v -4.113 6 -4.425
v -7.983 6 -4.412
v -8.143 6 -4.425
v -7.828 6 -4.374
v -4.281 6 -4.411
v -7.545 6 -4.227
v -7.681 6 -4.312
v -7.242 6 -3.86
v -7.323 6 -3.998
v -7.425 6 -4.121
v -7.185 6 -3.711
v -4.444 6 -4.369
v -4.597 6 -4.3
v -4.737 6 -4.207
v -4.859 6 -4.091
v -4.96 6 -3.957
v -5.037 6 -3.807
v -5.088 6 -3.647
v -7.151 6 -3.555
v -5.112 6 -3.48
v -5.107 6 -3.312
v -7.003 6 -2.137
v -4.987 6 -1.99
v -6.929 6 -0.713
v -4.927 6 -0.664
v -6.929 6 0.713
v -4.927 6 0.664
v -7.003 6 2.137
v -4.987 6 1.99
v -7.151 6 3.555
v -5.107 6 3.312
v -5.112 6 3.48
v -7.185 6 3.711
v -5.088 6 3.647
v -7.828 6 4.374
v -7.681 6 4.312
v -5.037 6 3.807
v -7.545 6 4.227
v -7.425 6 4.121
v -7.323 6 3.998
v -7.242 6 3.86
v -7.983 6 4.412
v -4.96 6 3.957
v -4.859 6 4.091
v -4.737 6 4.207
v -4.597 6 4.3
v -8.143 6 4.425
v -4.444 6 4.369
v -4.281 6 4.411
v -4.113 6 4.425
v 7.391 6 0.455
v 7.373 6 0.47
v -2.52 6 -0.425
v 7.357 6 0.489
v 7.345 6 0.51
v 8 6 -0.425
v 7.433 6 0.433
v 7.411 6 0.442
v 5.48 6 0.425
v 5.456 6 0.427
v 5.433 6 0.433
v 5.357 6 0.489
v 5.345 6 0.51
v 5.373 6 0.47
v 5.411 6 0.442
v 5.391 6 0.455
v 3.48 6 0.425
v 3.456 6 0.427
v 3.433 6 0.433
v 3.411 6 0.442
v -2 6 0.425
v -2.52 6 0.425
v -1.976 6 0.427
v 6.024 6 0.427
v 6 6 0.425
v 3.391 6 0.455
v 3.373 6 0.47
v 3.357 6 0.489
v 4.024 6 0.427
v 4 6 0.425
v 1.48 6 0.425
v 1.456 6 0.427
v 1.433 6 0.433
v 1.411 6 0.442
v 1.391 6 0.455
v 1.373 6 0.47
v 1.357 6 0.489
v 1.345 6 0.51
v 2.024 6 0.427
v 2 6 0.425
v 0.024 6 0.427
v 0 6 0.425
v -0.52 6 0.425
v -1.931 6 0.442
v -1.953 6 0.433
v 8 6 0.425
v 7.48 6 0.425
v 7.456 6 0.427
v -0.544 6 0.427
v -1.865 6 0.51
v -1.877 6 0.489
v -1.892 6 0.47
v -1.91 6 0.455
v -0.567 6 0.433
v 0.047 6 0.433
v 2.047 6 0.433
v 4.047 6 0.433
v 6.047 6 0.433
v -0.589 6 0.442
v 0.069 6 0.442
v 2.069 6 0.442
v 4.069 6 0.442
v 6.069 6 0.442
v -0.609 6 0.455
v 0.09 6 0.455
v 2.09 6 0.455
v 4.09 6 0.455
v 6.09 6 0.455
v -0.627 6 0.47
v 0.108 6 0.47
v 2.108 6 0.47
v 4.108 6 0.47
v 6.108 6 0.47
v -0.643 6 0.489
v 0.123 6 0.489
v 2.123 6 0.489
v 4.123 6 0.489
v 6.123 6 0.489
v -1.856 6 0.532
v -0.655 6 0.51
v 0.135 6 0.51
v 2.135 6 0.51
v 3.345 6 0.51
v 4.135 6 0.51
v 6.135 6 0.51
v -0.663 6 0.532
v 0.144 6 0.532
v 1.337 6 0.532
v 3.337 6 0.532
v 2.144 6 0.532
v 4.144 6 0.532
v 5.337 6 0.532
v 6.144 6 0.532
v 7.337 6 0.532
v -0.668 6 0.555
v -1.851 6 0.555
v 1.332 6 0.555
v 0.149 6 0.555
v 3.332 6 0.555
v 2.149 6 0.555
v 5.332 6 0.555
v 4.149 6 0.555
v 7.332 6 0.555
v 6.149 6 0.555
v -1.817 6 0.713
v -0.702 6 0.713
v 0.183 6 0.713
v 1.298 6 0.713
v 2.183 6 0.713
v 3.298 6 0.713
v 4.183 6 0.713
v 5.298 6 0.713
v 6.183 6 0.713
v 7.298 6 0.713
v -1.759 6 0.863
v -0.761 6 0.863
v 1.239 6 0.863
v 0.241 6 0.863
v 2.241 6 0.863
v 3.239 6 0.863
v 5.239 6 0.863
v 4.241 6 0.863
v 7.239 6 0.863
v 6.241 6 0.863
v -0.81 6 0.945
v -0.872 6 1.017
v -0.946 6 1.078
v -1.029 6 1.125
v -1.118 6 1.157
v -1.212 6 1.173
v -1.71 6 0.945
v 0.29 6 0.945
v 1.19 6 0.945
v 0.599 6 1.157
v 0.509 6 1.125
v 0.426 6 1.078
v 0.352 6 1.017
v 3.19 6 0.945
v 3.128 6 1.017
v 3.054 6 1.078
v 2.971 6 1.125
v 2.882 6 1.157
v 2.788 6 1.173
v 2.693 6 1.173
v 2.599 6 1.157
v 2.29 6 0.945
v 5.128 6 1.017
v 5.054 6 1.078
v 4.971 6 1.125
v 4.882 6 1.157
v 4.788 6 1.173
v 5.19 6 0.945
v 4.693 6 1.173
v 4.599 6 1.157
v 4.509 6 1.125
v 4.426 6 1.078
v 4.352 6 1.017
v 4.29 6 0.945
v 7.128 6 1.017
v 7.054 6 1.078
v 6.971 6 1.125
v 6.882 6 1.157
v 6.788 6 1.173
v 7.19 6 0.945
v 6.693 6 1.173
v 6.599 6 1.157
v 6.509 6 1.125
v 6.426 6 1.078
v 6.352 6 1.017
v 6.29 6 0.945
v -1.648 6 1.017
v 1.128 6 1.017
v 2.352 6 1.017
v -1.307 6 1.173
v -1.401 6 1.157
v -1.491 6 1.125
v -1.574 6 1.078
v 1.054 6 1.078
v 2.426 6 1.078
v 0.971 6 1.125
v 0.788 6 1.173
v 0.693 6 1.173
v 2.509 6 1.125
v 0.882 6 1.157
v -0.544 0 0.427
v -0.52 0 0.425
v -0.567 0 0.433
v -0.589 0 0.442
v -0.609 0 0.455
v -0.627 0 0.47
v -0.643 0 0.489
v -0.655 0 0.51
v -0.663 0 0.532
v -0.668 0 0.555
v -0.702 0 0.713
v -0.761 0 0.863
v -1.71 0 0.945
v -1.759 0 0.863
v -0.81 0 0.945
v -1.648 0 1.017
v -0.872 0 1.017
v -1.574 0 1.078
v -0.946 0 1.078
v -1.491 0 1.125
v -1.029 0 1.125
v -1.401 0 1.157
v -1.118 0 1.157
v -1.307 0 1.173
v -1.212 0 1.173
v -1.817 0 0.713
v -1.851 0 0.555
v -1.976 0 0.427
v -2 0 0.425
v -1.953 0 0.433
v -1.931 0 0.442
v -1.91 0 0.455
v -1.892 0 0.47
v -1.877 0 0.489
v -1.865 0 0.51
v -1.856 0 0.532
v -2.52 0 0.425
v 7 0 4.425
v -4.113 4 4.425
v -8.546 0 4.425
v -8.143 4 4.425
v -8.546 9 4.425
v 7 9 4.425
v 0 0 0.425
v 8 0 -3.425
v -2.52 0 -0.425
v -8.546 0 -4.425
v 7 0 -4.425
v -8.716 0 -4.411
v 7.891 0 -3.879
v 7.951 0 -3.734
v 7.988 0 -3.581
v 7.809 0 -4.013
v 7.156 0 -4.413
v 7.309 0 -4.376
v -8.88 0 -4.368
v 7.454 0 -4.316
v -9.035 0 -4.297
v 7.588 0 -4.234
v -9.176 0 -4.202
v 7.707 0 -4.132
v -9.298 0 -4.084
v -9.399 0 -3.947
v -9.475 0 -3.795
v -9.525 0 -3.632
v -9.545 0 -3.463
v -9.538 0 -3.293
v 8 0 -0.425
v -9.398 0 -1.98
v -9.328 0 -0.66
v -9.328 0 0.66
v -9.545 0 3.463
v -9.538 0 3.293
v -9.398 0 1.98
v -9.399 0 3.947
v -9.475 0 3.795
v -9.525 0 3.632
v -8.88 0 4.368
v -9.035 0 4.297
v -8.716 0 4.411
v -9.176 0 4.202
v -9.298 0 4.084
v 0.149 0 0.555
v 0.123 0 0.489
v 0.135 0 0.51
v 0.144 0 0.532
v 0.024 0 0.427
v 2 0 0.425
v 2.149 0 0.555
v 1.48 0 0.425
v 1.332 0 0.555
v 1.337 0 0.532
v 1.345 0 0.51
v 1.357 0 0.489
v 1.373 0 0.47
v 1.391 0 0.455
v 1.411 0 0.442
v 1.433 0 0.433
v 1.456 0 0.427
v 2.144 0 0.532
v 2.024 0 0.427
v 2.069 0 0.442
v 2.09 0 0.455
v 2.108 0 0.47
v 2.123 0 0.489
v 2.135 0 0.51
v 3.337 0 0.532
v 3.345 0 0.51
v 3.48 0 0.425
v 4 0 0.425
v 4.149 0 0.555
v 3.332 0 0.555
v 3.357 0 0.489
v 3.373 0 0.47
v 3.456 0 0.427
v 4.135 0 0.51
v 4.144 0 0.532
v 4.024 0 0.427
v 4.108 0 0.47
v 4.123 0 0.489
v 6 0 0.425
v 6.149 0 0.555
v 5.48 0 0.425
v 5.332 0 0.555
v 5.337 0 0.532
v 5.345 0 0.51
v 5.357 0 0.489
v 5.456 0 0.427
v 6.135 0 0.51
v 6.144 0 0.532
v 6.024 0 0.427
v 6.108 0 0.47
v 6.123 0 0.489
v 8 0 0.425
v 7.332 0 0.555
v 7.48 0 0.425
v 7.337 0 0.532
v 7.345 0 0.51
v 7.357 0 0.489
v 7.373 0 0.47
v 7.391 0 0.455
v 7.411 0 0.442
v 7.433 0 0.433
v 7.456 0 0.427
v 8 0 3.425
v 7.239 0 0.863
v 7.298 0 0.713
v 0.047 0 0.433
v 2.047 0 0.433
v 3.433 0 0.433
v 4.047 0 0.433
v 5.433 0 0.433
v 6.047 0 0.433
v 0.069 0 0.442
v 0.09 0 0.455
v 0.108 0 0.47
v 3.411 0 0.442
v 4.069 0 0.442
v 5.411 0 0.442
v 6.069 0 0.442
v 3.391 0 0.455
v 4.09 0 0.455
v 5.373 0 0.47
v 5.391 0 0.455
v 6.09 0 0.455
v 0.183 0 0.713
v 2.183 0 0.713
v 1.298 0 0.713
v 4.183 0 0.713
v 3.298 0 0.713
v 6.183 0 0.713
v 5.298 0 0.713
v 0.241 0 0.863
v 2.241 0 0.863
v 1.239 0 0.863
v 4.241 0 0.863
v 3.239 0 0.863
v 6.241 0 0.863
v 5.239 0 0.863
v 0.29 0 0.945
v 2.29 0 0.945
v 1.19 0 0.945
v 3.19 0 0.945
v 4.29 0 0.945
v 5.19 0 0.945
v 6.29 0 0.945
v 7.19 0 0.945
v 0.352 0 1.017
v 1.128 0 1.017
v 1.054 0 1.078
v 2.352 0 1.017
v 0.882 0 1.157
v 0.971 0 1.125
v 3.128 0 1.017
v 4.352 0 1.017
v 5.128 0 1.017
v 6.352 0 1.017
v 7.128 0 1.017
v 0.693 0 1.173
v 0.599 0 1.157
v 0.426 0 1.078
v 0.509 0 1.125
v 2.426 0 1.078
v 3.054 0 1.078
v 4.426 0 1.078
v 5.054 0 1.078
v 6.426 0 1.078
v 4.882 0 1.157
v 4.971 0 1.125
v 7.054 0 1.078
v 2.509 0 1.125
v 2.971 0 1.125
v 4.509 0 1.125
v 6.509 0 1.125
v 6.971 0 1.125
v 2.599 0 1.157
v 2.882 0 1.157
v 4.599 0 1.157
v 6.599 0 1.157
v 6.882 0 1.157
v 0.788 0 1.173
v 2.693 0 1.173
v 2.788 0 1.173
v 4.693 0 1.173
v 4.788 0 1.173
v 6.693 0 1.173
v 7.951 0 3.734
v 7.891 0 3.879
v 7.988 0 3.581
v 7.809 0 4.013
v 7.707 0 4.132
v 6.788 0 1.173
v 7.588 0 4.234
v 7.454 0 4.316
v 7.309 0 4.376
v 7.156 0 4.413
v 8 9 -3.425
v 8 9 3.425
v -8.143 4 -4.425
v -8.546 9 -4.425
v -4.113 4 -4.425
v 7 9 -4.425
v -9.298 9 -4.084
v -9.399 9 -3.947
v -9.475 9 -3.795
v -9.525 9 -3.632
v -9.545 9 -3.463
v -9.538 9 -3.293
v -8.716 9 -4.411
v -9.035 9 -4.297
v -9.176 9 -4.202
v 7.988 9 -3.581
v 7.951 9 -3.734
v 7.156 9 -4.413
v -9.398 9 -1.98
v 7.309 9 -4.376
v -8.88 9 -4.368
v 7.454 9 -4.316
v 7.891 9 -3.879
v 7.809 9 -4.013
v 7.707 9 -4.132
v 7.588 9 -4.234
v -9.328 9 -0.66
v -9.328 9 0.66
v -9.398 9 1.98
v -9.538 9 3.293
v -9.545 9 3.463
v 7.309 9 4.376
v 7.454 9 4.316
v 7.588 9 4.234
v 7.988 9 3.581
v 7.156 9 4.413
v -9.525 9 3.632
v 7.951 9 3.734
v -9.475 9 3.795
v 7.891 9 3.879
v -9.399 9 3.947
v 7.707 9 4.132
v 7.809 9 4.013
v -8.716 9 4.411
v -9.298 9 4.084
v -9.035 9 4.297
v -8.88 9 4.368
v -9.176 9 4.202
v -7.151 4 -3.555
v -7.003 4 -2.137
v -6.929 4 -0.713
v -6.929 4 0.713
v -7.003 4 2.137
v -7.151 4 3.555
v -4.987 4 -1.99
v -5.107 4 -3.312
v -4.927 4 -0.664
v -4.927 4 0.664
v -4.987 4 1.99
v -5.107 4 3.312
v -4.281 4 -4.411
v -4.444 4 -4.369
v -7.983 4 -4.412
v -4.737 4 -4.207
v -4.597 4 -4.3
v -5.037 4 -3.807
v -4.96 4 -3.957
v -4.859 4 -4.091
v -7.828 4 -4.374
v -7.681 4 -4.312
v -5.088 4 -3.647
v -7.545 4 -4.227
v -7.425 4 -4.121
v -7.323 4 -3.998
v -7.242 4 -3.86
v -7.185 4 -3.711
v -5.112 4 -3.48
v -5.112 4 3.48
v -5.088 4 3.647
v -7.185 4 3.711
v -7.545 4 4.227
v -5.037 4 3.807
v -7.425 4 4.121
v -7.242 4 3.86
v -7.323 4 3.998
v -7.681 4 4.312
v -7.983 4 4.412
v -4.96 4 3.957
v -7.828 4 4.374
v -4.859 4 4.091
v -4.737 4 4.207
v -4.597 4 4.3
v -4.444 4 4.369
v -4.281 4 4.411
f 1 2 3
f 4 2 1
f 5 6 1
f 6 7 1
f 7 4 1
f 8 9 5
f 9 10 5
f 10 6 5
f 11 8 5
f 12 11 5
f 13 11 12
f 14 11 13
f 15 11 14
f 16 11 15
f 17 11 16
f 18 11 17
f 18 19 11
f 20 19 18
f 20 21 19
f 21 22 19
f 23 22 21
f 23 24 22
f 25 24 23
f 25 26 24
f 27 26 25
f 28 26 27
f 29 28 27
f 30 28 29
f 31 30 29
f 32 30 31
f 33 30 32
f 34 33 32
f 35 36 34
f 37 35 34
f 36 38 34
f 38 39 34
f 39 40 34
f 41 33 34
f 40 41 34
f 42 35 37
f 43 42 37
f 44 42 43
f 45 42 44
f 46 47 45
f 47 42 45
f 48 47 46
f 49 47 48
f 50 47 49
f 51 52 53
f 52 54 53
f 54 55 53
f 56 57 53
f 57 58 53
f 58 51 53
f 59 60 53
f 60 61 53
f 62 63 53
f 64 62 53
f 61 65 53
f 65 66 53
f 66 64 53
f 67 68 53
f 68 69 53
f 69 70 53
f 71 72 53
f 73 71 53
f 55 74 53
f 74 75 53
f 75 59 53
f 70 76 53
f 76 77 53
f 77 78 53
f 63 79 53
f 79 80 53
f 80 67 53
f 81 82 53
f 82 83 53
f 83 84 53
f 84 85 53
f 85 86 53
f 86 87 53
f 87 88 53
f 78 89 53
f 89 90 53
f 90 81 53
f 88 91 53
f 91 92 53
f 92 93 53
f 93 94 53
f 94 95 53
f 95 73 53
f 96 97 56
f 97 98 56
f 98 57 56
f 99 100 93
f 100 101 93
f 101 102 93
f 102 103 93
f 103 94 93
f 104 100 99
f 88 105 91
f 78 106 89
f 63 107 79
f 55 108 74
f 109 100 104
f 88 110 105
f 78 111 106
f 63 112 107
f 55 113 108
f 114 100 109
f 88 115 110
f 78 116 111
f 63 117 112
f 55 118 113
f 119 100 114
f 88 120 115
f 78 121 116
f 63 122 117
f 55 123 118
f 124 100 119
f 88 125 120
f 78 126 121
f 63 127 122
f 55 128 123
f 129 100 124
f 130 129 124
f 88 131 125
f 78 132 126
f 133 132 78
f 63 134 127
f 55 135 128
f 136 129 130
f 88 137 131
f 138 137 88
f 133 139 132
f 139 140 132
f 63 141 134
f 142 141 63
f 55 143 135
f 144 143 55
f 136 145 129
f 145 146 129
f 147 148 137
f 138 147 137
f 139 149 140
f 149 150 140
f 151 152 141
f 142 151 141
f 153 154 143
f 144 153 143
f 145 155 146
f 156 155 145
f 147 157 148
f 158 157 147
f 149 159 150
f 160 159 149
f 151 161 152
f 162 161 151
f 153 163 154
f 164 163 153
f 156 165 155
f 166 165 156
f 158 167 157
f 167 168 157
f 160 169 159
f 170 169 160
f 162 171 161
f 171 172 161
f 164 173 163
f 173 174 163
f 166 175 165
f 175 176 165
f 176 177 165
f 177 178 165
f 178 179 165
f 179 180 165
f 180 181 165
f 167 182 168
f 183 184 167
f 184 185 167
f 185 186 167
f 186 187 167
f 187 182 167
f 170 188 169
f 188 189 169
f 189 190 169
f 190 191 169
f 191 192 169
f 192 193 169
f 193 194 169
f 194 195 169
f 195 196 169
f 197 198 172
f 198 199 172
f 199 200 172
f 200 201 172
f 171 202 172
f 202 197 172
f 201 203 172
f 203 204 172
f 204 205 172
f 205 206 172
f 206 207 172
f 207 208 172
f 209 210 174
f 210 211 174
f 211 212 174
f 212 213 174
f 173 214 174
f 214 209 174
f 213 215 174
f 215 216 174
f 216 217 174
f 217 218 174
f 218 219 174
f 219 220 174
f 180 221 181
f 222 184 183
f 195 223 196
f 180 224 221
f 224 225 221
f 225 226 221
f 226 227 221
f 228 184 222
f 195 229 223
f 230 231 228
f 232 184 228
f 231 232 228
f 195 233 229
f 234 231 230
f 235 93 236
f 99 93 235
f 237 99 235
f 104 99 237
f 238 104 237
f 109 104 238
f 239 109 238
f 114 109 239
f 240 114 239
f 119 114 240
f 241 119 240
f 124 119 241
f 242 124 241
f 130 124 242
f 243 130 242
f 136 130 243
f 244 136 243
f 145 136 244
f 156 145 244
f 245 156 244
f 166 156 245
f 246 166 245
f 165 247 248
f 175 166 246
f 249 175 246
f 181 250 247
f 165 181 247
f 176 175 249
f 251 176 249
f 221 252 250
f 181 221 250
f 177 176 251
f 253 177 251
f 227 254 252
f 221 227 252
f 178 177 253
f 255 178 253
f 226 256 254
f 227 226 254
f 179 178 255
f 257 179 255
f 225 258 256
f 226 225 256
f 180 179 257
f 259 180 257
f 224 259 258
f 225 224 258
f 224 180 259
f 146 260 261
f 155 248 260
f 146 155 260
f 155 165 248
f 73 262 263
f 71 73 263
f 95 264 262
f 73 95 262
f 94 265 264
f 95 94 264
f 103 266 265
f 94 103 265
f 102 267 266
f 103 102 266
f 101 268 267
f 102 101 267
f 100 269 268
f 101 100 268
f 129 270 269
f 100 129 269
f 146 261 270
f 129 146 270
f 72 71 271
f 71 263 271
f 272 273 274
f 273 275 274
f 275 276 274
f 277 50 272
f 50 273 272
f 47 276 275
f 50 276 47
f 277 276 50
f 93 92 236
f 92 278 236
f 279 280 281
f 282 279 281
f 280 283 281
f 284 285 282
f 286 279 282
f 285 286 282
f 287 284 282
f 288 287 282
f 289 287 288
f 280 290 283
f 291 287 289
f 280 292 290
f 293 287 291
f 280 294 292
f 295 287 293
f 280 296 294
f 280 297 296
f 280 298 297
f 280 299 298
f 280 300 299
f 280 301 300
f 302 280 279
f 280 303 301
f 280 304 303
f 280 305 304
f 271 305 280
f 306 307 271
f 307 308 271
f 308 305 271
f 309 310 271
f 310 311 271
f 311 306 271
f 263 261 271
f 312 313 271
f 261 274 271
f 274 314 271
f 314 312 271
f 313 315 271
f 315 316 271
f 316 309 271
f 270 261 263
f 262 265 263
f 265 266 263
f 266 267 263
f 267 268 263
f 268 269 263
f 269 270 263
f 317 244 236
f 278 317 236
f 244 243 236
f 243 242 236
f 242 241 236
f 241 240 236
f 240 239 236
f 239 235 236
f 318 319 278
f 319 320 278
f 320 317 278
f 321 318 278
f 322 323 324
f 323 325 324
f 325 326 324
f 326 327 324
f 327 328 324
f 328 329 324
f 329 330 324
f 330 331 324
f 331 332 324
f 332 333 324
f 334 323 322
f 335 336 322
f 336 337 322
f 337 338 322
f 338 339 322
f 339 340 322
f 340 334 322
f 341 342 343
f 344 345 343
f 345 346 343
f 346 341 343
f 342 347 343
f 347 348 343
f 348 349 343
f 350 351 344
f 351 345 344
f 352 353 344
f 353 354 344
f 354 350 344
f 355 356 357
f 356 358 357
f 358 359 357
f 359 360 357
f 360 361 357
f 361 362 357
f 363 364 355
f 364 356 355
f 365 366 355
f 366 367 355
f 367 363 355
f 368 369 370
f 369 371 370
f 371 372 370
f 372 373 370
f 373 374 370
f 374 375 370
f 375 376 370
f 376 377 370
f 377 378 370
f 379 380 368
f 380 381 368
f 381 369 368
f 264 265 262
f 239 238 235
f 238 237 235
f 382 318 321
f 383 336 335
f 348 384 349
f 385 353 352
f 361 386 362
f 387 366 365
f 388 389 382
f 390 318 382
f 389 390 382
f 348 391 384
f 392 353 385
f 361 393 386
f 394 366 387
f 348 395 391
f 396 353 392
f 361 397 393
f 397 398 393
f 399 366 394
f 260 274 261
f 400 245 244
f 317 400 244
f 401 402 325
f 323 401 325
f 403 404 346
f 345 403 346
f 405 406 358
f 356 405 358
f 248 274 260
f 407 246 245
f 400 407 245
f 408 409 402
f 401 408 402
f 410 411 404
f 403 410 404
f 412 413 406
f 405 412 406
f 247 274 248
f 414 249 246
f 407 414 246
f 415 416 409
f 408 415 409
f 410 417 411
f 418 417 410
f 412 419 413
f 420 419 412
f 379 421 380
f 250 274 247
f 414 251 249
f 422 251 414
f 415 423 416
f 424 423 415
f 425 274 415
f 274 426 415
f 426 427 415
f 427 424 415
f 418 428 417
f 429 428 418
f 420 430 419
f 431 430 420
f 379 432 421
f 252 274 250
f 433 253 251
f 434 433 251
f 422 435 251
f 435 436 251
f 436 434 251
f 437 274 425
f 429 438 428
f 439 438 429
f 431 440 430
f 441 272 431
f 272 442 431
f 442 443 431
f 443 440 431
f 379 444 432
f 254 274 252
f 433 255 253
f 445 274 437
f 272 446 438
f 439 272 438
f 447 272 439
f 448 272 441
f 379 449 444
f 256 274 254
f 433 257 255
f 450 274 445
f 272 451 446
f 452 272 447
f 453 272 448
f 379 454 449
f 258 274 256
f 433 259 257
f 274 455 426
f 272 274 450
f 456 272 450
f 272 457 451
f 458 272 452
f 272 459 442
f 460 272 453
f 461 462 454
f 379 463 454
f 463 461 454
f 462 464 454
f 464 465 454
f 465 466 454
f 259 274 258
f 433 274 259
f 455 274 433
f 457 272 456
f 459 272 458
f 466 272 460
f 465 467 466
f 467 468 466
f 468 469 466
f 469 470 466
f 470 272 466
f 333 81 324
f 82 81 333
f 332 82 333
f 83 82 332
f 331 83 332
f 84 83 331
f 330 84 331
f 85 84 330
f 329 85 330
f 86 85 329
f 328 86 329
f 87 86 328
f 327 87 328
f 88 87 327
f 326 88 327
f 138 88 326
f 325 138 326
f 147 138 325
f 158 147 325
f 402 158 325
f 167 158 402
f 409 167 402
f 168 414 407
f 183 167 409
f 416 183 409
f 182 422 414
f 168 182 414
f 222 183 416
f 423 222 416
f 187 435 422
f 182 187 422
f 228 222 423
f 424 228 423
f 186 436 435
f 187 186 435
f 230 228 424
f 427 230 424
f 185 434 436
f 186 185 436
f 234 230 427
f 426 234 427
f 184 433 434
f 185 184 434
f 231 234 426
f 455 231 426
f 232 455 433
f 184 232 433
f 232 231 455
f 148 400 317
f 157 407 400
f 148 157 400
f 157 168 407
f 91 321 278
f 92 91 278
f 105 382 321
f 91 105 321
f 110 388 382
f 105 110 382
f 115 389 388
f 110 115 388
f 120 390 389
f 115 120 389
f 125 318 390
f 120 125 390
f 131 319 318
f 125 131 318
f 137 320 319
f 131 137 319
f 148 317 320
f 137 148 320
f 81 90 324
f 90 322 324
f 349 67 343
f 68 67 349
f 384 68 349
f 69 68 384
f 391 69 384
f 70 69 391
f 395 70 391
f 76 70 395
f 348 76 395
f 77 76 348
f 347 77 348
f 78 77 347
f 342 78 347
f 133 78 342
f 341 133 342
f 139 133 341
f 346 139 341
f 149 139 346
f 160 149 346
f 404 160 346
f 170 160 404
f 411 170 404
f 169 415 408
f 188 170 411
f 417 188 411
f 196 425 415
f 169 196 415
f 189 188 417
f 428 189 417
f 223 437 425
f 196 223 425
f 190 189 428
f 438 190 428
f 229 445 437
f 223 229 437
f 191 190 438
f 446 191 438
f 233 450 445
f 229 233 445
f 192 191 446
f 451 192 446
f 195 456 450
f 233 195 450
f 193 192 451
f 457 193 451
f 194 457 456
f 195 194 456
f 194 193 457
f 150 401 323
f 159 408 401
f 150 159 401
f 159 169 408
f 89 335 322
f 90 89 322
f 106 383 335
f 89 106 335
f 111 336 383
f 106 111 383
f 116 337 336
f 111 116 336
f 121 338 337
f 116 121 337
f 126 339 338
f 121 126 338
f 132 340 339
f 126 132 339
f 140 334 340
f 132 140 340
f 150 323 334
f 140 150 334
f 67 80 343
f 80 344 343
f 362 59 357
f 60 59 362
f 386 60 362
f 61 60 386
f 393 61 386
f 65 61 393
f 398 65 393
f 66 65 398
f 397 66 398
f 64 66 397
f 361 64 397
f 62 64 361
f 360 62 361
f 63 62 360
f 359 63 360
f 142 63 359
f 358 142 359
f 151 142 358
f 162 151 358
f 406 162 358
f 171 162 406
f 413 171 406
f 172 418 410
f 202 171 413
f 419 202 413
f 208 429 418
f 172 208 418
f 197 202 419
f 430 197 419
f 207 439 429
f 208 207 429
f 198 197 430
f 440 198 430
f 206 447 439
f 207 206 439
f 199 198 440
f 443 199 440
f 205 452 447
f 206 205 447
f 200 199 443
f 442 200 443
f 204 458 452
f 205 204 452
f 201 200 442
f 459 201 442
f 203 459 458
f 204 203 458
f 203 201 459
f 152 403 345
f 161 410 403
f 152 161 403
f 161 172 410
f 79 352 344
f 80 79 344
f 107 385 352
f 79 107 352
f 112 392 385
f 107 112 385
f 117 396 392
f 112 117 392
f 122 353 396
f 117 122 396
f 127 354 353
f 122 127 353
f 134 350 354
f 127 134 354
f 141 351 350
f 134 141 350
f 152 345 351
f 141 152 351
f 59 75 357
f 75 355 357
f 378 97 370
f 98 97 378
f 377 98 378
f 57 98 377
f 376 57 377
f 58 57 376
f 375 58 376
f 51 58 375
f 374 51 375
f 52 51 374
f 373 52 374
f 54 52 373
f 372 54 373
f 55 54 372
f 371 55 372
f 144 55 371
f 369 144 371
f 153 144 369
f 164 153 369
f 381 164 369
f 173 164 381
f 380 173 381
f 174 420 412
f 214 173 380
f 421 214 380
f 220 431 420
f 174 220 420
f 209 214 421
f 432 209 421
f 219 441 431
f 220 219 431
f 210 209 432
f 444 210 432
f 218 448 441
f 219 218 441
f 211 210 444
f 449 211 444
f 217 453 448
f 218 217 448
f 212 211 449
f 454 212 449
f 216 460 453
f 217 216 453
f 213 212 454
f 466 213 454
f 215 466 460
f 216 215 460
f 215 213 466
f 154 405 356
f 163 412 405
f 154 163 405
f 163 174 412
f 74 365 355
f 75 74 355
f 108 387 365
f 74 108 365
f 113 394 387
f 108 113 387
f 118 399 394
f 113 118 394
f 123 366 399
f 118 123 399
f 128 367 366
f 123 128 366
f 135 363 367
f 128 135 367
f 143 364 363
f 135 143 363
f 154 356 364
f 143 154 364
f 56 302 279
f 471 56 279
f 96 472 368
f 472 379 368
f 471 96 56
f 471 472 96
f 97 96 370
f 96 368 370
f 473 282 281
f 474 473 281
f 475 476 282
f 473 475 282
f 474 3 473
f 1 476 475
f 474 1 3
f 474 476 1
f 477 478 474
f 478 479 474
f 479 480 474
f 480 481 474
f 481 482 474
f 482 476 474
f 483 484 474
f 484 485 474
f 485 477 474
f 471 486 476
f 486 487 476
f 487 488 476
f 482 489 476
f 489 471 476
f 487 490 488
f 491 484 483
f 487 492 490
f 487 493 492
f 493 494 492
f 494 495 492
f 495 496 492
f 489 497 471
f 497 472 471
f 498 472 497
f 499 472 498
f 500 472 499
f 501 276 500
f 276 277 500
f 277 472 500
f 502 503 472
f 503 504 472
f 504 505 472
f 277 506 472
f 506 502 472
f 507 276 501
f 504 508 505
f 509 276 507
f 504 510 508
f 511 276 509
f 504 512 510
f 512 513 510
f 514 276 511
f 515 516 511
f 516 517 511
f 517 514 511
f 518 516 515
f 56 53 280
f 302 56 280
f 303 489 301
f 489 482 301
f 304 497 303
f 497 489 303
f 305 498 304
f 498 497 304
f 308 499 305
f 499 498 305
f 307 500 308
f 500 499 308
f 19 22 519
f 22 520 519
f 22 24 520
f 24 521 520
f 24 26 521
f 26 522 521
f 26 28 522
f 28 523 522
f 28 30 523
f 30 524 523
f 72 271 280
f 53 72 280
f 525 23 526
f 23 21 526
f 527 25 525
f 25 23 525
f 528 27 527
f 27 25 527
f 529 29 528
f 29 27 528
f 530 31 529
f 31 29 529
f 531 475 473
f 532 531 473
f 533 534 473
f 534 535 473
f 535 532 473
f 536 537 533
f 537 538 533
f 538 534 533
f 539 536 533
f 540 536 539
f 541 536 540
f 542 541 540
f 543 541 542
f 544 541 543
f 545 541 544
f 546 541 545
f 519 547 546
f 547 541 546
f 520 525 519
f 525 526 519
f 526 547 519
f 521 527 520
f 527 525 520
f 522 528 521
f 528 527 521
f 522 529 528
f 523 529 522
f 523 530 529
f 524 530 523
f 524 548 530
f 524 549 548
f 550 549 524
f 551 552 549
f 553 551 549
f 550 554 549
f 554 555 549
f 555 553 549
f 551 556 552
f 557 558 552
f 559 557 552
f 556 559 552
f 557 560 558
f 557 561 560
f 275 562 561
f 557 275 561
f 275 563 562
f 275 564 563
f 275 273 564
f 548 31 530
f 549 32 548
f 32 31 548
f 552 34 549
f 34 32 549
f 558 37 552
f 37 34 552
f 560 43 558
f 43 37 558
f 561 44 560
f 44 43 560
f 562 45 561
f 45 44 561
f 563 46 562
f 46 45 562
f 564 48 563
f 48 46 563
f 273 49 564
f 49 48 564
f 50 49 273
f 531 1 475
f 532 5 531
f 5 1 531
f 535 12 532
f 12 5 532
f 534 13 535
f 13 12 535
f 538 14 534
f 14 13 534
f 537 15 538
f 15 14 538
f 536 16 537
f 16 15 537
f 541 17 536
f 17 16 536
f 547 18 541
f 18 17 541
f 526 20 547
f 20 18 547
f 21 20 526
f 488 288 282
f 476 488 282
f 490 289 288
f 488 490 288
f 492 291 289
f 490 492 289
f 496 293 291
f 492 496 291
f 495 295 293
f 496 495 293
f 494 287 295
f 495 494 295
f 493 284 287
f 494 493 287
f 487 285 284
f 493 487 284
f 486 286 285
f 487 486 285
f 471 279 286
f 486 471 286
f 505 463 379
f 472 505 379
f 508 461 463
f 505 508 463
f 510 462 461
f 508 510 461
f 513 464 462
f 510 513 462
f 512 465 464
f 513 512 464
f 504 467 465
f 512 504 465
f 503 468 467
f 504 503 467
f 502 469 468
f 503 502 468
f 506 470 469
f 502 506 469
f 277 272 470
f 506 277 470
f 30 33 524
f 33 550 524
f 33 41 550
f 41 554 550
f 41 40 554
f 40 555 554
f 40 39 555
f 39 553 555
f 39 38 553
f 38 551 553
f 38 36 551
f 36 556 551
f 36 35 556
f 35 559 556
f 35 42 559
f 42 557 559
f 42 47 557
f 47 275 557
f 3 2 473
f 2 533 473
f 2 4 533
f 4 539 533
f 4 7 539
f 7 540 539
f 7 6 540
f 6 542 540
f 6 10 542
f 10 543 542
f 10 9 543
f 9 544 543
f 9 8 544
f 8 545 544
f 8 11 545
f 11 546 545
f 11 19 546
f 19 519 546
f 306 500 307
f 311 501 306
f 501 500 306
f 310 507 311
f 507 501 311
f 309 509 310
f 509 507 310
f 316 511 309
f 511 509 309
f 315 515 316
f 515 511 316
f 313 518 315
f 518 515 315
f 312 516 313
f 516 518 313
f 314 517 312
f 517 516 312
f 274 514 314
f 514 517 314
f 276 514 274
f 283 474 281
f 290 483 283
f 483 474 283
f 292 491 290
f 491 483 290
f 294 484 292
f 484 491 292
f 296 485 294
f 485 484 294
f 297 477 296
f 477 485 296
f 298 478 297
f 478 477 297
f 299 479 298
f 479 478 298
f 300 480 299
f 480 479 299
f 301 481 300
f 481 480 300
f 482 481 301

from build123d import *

# Parameters (mm, degrees)
BOSS_EXTRUDE2_DEPTH   = 6
SKETCH3_W             = 2.51964915
SKETCH3_H             = 4
BOSS_EXTRUDE2_2_DEPTH = 6
LPATTERN1_COUNT       = 5
LPATTERN1_PITCH       = 2
SKETCH4_W             = 10.51964915
SKETCH4_H             = 8.85
BOSS_EXTRUDE3_DEPTH   = 3
BOSS_EXTRUDE7_DEPTH   = 3
BOSS_EXTRUDE8_START   = -3
BOSS_EXTRUDE8_DEPTH   = 2
BOSS_EXTRUDE9_START   = -5
BOSS_EXTRUDE9_DEPTH   = 4
FILLET1_R             = 1


with BuildPart() as part:
    # Sketch3 → Boss-Extrude2 (new body)
    with BuildSketch(Plane(origin=(0, 0, 0), x_dir=(-1, 0, 0), z_dir=(0, 1, 0))):
        with BuildLine():
            Line((0, 0.425), (0.51964915, 0.425))
            ThreePointArc((0.51964915, 0.425), (0.618556221, 0.462228588), (0.668367684, 0.555434783))
            ThreePointArc((0.668367684, 0.555434783), (0.702212861, 0.713062154), (0.76094817, 0.863202247))
            ThreePointArc((0.76094817, 0.863202247), (1.259824575, 1.175), (1.758700979, 0.863202247))
            ThreePointArc((1.758700979, 0.863202247), (1.817436289, 0.713062154), (1.851281466, 0.555434783))
            ThreePointArc((1.851281466, 0.555434783), (1.901092929, 0.462228588), (2, 0.425))
            Line((2, 0.425), (2.51964915, 0.425))
            Line((2.51964915, 0.425), (2.51964915, 4.425))
            Line((2.51964915, 4.425), (0, 4.425))
            Line((0, 4.425), (0, 0.425))
        make_face()
    boss_extrude2 = extrude(amount=BOSS_EXTRUDE2_DEPTH)


with BuildPart() as body_2:
    # Sketch3 → Boss-Extrude2 2 (new body)
    with BuildSketch(Plane(origin=(0, 0, 0), x_dir=(-1, 0, 0), z_dir=(0, 1, 0))):
        with Locations((1.259824575, -2.425)):
            Rectangle(SKETCH3_W, SKETCH3_H)
    boss_extrude2_2 = extrude(amount=BOSS_EXTRUDE2_2_DEPTH)


with BuildPart() as part_1:
    add(part.part)

    add(body_2.part)  # LPattern1 merges body 2
    # LPattern1: Boss-Extrude2, Boss-Extrude2 2 ×5
    with Locations(*[(i * LPATTERN1_PITCH, 0, 0) for i in range(1, LPATTERN1_COUNT)]):
        add(boss_extrude2)
        add(boss_extrude2_2)

    # Sketch4 → Boss-Extrude3 (add)
    with BuildSketch(Plane(origin=(0, 6, 0), x_dir=(1, 0, 0), z_dir=(0, 1, 0))):
        with Locations((2.740175425, 0)):
            Rectangle(SKETCH4_W, SKETCH4_H)
    extrude(amount=BOSS_EXTRUDE3_DEPTH)

    # Sketch8 → Boss-Extrude7 (add)
    with BuildSketch(Plane(origin=(0, 9, 0), x_dir=(1, 0, 0), z_dir=(0, 1, 0))):
        with BuildLine():
            Line((-2.51964915, 4.425), (-9.714377865, 4.425))
            ThreePointArc((-9.714377865, 4.425), (-9.31964915, 0), (-9.714377865, -4.425))
            Line((-9.714377865, -4.425), (-2.51964915, -4.425))
            Line((-2.51964915, -4.425), (-2.51964915, 4.425))
        make_face()
    extrude(amount=-BOSS_EXTRUDE7_DEPTH)

    # Sketch8<3> → Boss-Extrude8 (add)
    with BuildSketch(Plane(origin=(0, 9, 0), x_dir=(1, 0, 0), z_dir=(0, 1, 0)).offset(BOSS_EXTRUDE8_START)):
        with BuildLine():
            ThreePointArc((-7.279320472, -4.425), (-6.91964915, 0), (-7.279320472, 4.425))
            Line((-7.279320472, 4.425), (-9.714377865, 4.425))
            ThreePointArc((-9.714377865, 4.425), (-9.31964915, 0), (-9.714377865, -4.425))
            Line((-9.714377865, -4.425), (-7.279320472, -4.425))
        make_face()
        with BuildLine():
            Line((-2.51964915, -4.425), (-2.51964915, 4.425))
            Line((-2.51964915, 4.425), (-5.254560555, 4.425))
            ThreePointArc((-5.254560555, 4.425), (-4.91964915, 0), (-5.254560555, -4.425))
            Line((-5.254560555, -4.425), (-2.51964915, -4.425))
        make_face()
    extrude(amount=-BOSS_EXTRUDE8_DEPTH)

    # Sketch8<4> → Boss-Extrude9 (add)
    with BuildSketch(Plane(origin=(0, 9, 0), x_dir=(1, 0, 0), z_dir=(0, 1, 0)).offset(BOSS_EXTRUDE9_START)):
        with BuildLine():
            Line((-2.51964915, 4.425), (-9.714377865, 4.425))
            ThreePointArc((-9.714377865, 4.425), (-9.31964915, 0), (-9.714377865, -4.425))
            Line((-9.714377865, -4.425), (-2.51964915, -4.425))
            Line((-2.51964915, -4.425), (-2.51964915, 4.425))
        make_face()
    extrude(amount=-BOSS_EXTRUDE9_DEPTH)

    # Fillet1
    fillet1_edges = [part_1.edges().sort_by_distance(p)[0] for p in [
        (8, 4.5, 4.425),
        (8, 4.5, -4.425),
        (-9.714377865, 4.5, 4.425),
        (-9.714377865, 4.5, -4.425),
        (-7.279320472, 5, -4.425),
        (-7.279320472, 5, 4.425),
        (-5.254560555, 5, 4.425),
        (-5.254560555, 5, -4.425),
    ]]
    fillet(fillet1_edges, radius=FILLET1_R)


solid = part_1.part
